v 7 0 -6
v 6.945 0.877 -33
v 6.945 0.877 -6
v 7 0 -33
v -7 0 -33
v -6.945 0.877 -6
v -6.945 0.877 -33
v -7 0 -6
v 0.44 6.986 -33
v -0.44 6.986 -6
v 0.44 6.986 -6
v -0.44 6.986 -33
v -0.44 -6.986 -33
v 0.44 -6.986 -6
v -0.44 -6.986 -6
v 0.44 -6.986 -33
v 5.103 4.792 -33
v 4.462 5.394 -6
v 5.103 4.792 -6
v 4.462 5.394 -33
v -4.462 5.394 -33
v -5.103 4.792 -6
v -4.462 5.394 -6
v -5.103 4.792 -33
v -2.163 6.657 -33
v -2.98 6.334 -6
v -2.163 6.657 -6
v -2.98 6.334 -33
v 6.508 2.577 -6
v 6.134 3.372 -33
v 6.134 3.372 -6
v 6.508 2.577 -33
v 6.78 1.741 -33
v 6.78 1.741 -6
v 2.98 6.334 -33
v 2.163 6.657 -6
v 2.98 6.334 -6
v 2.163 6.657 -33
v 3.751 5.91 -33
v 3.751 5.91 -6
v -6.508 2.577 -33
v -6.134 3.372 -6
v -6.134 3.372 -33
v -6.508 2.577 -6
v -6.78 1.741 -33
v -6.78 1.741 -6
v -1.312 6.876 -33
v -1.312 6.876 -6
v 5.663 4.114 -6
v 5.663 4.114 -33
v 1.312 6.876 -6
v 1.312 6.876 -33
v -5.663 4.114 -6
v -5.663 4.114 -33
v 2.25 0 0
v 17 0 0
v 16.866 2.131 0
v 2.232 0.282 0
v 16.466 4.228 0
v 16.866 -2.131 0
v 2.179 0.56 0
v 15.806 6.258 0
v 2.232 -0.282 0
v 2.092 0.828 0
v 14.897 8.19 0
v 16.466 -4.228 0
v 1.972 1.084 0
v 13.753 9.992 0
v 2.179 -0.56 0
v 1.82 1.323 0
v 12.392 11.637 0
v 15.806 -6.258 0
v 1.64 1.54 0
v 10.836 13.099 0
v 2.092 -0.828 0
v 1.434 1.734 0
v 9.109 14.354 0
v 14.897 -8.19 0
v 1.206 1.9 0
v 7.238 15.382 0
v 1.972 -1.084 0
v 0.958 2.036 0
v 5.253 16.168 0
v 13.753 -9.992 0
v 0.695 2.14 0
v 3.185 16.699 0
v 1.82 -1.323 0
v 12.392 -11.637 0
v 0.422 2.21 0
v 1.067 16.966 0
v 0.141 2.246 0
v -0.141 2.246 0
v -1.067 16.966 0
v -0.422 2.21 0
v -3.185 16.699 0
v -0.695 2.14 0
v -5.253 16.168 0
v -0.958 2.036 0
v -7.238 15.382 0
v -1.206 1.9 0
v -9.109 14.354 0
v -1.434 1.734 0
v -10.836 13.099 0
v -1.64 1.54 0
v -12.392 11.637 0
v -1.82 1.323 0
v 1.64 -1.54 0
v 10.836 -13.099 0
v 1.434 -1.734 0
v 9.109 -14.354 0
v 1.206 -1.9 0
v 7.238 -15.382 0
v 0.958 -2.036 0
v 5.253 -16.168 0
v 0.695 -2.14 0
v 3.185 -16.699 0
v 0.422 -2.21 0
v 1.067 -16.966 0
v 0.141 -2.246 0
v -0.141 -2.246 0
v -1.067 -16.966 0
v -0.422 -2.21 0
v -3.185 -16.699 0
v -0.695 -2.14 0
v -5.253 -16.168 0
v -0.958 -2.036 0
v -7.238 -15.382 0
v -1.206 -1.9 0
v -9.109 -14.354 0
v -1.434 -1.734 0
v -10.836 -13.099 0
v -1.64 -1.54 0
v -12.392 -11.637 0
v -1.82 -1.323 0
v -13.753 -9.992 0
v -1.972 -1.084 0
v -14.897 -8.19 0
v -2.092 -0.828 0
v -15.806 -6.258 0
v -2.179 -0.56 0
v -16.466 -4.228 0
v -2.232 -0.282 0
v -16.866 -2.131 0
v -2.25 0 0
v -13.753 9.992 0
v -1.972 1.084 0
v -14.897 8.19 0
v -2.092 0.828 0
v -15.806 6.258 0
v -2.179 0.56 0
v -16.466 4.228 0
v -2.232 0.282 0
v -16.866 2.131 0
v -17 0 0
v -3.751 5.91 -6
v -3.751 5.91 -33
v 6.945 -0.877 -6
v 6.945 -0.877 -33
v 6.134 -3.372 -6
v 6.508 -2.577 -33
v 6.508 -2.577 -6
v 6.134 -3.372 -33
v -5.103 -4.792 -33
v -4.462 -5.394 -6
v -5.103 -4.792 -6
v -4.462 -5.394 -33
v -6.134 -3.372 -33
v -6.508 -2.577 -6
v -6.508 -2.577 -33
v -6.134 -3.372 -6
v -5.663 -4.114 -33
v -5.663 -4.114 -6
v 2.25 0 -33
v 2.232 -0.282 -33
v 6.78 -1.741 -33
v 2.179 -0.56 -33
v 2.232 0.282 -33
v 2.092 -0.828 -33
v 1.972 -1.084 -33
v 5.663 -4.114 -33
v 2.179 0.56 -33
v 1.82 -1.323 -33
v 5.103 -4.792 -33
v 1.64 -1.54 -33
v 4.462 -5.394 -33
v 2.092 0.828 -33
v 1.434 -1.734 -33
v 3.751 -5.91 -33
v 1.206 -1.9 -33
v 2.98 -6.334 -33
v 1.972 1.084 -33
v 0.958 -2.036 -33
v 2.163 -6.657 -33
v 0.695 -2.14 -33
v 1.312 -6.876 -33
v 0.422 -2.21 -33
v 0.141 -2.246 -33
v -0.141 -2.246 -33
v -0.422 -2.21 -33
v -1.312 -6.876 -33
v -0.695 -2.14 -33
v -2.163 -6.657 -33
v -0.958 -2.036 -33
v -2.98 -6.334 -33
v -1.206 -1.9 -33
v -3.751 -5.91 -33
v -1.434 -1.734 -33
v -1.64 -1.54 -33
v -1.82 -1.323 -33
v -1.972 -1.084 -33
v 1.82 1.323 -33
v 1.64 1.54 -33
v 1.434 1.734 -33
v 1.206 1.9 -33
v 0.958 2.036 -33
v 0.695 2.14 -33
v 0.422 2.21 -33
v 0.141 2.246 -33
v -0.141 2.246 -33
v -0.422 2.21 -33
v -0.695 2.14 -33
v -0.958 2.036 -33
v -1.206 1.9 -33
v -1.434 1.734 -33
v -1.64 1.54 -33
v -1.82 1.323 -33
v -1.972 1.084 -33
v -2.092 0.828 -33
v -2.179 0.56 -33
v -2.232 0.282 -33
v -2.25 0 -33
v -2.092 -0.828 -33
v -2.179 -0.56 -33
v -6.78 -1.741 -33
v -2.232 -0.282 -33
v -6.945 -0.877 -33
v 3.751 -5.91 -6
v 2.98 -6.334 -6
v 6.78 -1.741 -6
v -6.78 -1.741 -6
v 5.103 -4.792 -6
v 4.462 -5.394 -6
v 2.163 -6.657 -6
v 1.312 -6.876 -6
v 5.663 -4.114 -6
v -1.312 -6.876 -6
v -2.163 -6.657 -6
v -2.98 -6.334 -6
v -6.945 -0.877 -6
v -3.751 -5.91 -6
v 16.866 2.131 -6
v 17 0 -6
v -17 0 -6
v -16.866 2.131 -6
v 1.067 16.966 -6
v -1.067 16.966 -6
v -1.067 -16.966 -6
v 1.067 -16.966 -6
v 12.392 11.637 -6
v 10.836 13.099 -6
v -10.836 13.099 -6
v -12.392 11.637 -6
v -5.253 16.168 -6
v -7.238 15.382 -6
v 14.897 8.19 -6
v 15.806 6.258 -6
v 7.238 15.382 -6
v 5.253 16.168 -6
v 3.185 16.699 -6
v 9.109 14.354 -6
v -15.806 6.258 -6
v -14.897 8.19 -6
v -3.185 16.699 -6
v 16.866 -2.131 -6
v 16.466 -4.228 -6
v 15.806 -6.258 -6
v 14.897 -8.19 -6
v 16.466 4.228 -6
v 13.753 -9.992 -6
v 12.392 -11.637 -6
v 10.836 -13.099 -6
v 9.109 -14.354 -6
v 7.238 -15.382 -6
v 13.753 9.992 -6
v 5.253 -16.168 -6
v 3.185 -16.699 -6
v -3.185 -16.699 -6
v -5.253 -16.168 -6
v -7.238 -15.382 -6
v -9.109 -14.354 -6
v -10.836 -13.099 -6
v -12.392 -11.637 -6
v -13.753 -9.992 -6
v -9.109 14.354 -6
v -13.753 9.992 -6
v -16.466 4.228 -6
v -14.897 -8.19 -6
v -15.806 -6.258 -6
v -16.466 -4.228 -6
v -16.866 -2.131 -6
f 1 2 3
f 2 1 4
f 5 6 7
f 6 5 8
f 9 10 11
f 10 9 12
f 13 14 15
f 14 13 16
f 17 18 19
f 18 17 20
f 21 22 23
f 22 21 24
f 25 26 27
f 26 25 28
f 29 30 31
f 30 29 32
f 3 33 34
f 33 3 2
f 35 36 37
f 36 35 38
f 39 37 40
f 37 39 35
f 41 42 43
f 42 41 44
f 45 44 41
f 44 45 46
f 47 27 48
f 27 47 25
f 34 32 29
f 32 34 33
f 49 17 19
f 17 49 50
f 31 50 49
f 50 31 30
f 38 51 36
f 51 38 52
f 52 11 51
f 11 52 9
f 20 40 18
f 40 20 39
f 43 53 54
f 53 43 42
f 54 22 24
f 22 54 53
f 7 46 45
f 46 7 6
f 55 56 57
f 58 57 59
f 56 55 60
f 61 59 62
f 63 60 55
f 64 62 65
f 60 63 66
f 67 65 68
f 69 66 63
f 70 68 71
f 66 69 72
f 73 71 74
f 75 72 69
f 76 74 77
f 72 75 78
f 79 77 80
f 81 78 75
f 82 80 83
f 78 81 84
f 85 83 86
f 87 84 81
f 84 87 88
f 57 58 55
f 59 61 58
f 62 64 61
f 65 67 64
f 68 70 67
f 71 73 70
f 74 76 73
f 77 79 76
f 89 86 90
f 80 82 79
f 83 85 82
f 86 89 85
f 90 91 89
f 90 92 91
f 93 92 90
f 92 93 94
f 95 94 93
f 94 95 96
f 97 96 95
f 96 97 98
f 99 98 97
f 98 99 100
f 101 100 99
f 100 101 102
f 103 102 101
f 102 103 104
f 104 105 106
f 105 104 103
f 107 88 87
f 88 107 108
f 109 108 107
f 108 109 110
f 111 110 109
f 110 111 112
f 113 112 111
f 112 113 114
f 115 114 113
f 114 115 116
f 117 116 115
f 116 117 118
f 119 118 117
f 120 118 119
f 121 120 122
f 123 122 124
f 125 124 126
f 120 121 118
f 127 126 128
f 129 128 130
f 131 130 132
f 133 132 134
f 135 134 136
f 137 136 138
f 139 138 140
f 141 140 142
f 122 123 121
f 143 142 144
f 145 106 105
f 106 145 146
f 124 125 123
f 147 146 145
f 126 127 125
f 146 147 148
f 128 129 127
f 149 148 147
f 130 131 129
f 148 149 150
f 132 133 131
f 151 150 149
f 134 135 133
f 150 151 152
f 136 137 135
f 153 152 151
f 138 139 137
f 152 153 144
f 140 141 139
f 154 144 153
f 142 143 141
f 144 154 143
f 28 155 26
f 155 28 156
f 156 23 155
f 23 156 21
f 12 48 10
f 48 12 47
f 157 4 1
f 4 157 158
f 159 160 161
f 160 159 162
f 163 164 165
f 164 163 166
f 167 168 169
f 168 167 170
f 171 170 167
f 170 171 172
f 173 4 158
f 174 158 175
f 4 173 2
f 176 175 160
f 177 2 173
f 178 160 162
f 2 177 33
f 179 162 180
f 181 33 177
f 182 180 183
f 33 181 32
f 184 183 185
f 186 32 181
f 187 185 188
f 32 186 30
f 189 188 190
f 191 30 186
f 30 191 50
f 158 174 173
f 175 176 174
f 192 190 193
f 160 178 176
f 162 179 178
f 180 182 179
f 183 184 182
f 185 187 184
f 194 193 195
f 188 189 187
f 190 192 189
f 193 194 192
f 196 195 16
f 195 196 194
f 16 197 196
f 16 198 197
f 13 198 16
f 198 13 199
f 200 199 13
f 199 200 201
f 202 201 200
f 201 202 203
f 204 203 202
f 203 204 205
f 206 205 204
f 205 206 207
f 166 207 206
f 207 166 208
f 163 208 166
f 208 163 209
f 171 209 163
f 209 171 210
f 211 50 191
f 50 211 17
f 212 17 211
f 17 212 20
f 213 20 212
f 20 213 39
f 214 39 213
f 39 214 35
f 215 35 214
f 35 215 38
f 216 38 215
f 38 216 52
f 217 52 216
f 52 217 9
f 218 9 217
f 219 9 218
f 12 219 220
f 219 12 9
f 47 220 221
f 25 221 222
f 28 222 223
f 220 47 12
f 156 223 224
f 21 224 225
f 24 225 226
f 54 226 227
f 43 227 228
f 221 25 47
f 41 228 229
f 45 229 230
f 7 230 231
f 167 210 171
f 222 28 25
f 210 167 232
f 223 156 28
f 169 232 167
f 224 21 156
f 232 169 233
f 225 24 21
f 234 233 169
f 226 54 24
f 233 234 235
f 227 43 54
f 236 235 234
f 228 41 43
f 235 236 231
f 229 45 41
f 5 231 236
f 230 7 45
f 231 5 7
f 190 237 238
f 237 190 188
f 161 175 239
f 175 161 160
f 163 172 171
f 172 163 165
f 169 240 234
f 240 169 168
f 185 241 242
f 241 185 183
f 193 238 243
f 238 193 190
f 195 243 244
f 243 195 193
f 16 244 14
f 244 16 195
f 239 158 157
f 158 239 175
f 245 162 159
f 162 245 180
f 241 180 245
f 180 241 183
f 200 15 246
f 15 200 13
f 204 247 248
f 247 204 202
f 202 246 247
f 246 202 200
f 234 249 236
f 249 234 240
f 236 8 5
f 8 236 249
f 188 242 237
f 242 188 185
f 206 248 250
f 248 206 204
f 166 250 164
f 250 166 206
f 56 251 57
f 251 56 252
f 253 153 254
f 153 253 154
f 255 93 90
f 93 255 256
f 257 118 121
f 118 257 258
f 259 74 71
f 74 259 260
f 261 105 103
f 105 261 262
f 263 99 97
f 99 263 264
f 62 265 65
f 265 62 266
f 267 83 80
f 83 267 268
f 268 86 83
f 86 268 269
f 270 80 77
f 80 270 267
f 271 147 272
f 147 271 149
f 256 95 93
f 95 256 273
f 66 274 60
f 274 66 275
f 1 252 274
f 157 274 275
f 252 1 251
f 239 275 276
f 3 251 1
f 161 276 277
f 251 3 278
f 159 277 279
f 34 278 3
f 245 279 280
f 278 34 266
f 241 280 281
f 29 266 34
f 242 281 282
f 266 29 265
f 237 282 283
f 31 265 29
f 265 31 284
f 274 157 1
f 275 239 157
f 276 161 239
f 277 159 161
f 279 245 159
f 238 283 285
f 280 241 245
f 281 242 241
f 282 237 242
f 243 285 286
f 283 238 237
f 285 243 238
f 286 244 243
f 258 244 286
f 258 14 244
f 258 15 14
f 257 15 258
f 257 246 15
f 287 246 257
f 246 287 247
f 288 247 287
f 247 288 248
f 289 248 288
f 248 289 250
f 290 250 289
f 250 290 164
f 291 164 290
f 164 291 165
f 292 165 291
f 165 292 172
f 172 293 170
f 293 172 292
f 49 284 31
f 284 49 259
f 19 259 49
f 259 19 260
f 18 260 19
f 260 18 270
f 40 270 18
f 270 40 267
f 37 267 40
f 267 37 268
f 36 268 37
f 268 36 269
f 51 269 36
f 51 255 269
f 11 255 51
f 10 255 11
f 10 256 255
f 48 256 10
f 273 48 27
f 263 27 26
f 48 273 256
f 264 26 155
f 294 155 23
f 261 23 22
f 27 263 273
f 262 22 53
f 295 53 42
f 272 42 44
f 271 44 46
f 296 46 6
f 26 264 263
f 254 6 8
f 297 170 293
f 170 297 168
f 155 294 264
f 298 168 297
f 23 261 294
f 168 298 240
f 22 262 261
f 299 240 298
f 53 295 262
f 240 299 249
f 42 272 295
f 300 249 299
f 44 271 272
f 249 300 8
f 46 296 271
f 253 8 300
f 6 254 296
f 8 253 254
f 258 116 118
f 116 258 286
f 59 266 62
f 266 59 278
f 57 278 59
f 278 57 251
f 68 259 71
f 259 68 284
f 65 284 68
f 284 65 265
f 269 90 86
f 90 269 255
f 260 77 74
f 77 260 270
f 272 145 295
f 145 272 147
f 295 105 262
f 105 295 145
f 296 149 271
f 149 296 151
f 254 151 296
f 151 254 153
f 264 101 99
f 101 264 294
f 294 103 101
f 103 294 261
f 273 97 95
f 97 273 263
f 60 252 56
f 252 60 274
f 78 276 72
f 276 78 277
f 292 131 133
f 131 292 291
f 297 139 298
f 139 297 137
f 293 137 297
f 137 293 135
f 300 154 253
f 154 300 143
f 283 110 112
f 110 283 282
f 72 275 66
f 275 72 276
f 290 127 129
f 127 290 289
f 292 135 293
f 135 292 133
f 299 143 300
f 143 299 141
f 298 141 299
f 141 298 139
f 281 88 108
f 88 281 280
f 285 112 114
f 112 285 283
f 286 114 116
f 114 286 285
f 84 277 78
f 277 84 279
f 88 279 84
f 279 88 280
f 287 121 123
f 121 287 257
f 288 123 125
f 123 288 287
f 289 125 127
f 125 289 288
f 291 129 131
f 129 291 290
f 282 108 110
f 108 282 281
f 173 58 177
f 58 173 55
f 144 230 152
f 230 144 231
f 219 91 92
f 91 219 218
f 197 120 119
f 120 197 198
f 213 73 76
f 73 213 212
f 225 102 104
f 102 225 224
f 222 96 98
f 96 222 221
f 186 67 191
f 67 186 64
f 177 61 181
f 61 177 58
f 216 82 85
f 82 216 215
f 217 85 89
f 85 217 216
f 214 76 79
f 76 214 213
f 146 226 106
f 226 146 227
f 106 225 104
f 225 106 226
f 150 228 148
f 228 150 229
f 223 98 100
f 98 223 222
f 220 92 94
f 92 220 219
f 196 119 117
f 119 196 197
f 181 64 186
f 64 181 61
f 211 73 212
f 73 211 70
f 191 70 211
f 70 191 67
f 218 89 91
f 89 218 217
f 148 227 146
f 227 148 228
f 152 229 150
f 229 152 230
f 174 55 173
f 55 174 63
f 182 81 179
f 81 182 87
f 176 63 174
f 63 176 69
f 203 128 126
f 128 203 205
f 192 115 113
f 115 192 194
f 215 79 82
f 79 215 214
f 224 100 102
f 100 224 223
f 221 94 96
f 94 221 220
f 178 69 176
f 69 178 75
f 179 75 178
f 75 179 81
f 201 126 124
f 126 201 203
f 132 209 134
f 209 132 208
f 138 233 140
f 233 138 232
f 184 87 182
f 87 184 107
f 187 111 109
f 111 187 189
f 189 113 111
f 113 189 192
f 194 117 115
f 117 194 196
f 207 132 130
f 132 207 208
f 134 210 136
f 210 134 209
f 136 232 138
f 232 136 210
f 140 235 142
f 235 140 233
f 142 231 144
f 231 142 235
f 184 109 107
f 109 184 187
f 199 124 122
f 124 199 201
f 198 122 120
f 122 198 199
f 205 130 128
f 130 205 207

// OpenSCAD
$fn = 50;


difference() {
	union() {
		translate(v = [0, 0, -33.0000000000]) {
			cylinder(h = 33, r = 7.0000000000);
		}
		translate(v = [0, 0, -6.0000000000]) {
			cylinder(h = 6, r = 17.0000000000);
		}
	}
	union() {
		#translate(v = [0, 0, -33]) {
			cylinder(h = 33, r = 2.2500000000);
		}
	}
}
